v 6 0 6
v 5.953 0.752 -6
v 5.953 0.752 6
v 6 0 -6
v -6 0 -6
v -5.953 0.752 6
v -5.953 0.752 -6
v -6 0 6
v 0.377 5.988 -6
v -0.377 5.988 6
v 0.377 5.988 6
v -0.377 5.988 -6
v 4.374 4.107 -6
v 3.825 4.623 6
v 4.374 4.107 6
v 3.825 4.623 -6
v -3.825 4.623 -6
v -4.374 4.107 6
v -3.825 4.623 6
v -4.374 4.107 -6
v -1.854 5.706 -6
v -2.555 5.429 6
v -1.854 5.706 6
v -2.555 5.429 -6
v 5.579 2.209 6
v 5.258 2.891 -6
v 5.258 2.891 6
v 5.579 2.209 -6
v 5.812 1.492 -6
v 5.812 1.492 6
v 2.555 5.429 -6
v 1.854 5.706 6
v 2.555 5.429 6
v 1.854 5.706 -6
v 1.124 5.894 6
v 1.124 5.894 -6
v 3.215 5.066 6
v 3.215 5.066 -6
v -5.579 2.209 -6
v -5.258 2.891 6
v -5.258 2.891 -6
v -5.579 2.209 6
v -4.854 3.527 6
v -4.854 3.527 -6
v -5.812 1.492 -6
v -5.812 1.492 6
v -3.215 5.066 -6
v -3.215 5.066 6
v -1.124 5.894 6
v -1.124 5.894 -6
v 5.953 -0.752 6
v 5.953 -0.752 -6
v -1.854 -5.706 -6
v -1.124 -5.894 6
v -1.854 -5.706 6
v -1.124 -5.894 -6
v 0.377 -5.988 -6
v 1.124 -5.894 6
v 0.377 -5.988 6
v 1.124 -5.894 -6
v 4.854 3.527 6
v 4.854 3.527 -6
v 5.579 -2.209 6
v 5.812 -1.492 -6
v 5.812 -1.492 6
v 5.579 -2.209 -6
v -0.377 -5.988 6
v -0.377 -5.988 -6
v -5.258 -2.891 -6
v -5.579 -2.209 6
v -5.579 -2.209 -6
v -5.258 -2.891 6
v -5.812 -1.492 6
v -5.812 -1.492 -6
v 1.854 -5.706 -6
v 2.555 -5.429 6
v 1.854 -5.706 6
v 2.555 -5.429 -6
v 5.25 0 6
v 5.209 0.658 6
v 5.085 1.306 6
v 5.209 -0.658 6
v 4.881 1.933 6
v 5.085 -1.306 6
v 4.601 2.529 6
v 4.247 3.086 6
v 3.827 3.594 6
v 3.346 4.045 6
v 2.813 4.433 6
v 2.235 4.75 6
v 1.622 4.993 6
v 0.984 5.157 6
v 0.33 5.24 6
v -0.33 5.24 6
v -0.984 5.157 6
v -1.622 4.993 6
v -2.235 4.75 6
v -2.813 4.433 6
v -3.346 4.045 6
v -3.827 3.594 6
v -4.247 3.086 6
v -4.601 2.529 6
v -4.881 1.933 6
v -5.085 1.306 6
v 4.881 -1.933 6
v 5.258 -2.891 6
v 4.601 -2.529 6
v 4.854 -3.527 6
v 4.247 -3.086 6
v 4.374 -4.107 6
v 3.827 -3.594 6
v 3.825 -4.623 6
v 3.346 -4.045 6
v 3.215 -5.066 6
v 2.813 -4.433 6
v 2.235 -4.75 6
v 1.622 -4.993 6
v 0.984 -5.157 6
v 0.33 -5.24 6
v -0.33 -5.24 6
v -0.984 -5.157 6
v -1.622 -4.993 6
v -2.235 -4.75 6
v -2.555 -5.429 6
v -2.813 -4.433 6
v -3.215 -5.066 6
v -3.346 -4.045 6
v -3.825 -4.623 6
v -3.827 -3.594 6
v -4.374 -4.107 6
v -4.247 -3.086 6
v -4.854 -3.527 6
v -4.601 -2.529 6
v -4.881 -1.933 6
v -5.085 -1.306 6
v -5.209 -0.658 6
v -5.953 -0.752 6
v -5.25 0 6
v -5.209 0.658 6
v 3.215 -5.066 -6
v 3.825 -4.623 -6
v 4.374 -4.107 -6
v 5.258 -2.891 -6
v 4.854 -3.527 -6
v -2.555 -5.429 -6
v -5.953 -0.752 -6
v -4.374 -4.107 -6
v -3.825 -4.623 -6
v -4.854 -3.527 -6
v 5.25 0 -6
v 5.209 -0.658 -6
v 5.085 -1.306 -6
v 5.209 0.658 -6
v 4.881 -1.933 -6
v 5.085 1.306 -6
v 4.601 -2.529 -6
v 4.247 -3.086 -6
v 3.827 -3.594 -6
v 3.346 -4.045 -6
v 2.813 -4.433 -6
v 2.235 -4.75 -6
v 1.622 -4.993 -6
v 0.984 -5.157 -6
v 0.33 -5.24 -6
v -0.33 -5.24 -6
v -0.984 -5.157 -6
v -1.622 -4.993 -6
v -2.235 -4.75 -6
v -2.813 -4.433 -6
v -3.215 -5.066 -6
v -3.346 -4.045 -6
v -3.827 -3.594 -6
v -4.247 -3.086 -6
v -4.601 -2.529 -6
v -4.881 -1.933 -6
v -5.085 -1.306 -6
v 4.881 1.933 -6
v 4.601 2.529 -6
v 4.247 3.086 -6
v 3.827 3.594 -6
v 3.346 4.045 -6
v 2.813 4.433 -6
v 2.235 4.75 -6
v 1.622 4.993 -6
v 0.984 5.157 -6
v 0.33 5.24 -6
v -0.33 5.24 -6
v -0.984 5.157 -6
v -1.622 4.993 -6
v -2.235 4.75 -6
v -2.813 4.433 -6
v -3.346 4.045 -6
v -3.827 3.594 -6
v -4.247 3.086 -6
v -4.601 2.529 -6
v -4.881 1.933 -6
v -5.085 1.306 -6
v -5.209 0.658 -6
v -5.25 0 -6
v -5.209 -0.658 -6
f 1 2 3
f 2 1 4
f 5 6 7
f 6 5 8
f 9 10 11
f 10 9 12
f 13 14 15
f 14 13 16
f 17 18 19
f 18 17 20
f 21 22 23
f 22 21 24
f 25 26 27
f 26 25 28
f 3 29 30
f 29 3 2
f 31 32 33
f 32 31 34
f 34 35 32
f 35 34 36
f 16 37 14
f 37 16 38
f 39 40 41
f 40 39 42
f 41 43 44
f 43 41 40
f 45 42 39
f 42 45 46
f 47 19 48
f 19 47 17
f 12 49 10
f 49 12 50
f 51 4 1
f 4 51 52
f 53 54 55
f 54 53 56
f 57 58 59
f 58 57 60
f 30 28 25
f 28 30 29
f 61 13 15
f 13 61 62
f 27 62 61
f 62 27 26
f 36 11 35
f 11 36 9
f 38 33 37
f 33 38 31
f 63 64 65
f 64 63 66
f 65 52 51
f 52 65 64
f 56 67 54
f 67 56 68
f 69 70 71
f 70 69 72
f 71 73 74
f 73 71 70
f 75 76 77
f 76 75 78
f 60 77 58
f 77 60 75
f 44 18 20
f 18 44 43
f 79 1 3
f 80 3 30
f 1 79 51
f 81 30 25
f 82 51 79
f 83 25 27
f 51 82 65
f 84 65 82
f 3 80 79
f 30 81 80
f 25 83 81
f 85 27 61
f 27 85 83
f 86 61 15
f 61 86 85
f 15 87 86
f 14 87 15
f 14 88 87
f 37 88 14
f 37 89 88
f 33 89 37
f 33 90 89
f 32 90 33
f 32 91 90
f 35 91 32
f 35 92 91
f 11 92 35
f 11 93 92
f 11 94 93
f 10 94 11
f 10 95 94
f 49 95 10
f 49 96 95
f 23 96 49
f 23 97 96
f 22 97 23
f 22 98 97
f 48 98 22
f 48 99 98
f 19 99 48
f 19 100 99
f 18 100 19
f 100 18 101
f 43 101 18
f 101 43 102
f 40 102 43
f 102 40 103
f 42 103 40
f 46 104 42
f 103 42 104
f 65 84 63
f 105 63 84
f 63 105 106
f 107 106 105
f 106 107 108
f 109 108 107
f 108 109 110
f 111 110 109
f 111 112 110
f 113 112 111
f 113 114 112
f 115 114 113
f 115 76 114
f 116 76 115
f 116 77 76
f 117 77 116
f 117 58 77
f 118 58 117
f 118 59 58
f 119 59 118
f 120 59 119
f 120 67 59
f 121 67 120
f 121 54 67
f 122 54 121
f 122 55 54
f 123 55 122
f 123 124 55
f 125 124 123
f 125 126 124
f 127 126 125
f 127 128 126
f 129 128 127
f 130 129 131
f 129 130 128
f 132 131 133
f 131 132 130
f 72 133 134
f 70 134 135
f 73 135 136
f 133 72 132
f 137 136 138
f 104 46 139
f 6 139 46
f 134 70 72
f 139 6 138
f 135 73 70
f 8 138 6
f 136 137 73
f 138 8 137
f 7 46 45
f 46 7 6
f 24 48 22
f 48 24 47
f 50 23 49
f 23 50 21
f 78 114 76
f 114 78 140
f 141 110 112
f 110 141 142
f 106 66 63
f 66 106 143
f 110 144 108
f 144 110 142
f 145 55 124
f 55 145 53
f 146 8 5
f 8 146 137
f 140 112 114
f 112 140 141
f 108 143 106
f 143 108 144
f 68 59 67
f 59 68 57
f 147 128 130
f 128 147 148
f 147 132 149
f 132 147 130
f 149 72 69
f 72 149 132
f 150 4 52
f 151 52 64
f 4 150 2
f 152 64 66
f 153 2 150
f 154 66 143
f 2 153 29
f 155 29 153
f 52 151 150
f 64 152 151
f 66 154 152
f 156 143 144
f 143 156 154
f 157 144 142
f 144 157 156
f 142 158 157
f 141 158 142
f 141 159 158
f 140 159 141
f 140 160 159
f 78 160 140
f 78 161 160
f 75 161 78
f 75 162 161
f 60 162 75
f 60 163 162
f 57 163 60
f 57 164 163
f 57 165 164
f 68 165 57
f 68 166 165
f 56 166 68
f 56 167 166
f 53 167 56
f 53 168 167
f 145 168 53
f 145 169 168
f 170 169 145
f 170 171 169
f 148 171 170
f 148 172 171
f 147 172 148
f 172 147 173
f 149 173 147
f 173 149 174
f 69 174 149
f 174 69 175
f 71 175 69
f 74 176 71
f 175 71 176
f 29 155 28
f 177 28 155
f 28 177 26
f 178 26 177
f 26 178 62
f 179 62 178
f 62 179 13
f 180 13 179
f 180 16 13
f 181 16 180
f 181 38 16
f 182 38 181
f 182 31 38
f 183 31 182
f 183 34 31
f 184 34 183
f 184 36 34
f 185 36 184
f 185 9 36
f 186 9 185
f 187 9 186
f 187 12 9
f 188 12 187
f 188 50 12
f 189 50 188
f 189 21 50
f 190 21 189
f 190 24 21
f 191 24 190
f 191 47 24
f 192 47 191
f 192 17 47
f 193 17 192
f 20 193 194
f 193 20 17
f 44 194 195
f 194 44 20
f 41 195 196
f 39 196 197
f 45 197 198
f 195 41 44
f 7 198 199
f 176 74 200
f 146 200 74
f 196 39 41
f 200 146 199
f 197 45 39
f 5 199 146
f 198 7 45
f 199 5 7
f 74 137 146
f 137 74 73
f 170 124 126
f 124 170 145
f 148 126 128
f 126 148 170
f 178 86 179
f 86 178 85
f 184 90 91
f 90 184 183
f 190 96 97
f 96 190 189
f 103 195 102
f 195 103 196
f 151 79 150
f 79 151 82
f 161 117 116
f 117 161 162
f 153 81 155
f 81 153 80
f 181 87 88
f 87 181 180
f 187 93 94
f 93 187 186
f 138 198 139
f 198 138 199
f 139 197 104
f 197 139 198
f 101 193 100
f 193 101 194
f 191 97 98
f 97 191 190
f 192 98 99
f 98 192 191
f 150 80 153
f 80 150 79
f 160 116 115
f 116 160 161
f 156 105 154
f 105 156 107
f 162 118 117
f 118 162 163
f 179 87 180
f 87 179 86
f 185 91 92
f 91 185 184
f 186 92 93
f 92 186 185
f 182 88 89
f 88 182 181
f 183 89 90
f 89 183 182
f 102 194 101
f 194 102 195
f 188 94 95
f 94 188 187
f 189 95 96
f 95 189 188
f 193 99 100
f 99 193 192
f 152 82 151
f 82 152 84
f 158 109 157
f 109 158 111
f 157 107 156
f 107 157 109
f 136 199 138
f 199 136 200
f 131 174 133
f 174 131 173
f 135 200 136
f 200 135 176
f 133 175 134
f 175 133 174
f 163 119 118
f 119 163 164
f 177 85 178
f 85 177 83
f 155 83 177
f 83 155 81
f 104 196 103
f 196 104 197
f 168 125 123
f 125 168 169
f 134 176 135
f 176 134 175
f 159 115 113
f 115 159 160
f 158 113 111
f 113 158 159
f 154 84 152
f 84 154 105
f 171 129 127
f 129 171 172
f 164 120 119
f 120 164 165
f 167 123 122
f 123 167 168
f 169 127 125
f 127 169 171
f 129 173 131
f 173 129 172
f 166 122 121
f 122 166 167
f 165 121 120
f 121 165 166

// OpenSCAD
$fn = 50;


difference() {
	union() {
		translate(v = [0, 0, -6.0000000000]) {
			cylinder(h = 12, r = 6.0000000000);
		}
	}
	union() {
		translate(v = [0, 0, -100.0000000000]) {
			cylinder(h = 200, r = 5.2500000000);
		}
	}
}
